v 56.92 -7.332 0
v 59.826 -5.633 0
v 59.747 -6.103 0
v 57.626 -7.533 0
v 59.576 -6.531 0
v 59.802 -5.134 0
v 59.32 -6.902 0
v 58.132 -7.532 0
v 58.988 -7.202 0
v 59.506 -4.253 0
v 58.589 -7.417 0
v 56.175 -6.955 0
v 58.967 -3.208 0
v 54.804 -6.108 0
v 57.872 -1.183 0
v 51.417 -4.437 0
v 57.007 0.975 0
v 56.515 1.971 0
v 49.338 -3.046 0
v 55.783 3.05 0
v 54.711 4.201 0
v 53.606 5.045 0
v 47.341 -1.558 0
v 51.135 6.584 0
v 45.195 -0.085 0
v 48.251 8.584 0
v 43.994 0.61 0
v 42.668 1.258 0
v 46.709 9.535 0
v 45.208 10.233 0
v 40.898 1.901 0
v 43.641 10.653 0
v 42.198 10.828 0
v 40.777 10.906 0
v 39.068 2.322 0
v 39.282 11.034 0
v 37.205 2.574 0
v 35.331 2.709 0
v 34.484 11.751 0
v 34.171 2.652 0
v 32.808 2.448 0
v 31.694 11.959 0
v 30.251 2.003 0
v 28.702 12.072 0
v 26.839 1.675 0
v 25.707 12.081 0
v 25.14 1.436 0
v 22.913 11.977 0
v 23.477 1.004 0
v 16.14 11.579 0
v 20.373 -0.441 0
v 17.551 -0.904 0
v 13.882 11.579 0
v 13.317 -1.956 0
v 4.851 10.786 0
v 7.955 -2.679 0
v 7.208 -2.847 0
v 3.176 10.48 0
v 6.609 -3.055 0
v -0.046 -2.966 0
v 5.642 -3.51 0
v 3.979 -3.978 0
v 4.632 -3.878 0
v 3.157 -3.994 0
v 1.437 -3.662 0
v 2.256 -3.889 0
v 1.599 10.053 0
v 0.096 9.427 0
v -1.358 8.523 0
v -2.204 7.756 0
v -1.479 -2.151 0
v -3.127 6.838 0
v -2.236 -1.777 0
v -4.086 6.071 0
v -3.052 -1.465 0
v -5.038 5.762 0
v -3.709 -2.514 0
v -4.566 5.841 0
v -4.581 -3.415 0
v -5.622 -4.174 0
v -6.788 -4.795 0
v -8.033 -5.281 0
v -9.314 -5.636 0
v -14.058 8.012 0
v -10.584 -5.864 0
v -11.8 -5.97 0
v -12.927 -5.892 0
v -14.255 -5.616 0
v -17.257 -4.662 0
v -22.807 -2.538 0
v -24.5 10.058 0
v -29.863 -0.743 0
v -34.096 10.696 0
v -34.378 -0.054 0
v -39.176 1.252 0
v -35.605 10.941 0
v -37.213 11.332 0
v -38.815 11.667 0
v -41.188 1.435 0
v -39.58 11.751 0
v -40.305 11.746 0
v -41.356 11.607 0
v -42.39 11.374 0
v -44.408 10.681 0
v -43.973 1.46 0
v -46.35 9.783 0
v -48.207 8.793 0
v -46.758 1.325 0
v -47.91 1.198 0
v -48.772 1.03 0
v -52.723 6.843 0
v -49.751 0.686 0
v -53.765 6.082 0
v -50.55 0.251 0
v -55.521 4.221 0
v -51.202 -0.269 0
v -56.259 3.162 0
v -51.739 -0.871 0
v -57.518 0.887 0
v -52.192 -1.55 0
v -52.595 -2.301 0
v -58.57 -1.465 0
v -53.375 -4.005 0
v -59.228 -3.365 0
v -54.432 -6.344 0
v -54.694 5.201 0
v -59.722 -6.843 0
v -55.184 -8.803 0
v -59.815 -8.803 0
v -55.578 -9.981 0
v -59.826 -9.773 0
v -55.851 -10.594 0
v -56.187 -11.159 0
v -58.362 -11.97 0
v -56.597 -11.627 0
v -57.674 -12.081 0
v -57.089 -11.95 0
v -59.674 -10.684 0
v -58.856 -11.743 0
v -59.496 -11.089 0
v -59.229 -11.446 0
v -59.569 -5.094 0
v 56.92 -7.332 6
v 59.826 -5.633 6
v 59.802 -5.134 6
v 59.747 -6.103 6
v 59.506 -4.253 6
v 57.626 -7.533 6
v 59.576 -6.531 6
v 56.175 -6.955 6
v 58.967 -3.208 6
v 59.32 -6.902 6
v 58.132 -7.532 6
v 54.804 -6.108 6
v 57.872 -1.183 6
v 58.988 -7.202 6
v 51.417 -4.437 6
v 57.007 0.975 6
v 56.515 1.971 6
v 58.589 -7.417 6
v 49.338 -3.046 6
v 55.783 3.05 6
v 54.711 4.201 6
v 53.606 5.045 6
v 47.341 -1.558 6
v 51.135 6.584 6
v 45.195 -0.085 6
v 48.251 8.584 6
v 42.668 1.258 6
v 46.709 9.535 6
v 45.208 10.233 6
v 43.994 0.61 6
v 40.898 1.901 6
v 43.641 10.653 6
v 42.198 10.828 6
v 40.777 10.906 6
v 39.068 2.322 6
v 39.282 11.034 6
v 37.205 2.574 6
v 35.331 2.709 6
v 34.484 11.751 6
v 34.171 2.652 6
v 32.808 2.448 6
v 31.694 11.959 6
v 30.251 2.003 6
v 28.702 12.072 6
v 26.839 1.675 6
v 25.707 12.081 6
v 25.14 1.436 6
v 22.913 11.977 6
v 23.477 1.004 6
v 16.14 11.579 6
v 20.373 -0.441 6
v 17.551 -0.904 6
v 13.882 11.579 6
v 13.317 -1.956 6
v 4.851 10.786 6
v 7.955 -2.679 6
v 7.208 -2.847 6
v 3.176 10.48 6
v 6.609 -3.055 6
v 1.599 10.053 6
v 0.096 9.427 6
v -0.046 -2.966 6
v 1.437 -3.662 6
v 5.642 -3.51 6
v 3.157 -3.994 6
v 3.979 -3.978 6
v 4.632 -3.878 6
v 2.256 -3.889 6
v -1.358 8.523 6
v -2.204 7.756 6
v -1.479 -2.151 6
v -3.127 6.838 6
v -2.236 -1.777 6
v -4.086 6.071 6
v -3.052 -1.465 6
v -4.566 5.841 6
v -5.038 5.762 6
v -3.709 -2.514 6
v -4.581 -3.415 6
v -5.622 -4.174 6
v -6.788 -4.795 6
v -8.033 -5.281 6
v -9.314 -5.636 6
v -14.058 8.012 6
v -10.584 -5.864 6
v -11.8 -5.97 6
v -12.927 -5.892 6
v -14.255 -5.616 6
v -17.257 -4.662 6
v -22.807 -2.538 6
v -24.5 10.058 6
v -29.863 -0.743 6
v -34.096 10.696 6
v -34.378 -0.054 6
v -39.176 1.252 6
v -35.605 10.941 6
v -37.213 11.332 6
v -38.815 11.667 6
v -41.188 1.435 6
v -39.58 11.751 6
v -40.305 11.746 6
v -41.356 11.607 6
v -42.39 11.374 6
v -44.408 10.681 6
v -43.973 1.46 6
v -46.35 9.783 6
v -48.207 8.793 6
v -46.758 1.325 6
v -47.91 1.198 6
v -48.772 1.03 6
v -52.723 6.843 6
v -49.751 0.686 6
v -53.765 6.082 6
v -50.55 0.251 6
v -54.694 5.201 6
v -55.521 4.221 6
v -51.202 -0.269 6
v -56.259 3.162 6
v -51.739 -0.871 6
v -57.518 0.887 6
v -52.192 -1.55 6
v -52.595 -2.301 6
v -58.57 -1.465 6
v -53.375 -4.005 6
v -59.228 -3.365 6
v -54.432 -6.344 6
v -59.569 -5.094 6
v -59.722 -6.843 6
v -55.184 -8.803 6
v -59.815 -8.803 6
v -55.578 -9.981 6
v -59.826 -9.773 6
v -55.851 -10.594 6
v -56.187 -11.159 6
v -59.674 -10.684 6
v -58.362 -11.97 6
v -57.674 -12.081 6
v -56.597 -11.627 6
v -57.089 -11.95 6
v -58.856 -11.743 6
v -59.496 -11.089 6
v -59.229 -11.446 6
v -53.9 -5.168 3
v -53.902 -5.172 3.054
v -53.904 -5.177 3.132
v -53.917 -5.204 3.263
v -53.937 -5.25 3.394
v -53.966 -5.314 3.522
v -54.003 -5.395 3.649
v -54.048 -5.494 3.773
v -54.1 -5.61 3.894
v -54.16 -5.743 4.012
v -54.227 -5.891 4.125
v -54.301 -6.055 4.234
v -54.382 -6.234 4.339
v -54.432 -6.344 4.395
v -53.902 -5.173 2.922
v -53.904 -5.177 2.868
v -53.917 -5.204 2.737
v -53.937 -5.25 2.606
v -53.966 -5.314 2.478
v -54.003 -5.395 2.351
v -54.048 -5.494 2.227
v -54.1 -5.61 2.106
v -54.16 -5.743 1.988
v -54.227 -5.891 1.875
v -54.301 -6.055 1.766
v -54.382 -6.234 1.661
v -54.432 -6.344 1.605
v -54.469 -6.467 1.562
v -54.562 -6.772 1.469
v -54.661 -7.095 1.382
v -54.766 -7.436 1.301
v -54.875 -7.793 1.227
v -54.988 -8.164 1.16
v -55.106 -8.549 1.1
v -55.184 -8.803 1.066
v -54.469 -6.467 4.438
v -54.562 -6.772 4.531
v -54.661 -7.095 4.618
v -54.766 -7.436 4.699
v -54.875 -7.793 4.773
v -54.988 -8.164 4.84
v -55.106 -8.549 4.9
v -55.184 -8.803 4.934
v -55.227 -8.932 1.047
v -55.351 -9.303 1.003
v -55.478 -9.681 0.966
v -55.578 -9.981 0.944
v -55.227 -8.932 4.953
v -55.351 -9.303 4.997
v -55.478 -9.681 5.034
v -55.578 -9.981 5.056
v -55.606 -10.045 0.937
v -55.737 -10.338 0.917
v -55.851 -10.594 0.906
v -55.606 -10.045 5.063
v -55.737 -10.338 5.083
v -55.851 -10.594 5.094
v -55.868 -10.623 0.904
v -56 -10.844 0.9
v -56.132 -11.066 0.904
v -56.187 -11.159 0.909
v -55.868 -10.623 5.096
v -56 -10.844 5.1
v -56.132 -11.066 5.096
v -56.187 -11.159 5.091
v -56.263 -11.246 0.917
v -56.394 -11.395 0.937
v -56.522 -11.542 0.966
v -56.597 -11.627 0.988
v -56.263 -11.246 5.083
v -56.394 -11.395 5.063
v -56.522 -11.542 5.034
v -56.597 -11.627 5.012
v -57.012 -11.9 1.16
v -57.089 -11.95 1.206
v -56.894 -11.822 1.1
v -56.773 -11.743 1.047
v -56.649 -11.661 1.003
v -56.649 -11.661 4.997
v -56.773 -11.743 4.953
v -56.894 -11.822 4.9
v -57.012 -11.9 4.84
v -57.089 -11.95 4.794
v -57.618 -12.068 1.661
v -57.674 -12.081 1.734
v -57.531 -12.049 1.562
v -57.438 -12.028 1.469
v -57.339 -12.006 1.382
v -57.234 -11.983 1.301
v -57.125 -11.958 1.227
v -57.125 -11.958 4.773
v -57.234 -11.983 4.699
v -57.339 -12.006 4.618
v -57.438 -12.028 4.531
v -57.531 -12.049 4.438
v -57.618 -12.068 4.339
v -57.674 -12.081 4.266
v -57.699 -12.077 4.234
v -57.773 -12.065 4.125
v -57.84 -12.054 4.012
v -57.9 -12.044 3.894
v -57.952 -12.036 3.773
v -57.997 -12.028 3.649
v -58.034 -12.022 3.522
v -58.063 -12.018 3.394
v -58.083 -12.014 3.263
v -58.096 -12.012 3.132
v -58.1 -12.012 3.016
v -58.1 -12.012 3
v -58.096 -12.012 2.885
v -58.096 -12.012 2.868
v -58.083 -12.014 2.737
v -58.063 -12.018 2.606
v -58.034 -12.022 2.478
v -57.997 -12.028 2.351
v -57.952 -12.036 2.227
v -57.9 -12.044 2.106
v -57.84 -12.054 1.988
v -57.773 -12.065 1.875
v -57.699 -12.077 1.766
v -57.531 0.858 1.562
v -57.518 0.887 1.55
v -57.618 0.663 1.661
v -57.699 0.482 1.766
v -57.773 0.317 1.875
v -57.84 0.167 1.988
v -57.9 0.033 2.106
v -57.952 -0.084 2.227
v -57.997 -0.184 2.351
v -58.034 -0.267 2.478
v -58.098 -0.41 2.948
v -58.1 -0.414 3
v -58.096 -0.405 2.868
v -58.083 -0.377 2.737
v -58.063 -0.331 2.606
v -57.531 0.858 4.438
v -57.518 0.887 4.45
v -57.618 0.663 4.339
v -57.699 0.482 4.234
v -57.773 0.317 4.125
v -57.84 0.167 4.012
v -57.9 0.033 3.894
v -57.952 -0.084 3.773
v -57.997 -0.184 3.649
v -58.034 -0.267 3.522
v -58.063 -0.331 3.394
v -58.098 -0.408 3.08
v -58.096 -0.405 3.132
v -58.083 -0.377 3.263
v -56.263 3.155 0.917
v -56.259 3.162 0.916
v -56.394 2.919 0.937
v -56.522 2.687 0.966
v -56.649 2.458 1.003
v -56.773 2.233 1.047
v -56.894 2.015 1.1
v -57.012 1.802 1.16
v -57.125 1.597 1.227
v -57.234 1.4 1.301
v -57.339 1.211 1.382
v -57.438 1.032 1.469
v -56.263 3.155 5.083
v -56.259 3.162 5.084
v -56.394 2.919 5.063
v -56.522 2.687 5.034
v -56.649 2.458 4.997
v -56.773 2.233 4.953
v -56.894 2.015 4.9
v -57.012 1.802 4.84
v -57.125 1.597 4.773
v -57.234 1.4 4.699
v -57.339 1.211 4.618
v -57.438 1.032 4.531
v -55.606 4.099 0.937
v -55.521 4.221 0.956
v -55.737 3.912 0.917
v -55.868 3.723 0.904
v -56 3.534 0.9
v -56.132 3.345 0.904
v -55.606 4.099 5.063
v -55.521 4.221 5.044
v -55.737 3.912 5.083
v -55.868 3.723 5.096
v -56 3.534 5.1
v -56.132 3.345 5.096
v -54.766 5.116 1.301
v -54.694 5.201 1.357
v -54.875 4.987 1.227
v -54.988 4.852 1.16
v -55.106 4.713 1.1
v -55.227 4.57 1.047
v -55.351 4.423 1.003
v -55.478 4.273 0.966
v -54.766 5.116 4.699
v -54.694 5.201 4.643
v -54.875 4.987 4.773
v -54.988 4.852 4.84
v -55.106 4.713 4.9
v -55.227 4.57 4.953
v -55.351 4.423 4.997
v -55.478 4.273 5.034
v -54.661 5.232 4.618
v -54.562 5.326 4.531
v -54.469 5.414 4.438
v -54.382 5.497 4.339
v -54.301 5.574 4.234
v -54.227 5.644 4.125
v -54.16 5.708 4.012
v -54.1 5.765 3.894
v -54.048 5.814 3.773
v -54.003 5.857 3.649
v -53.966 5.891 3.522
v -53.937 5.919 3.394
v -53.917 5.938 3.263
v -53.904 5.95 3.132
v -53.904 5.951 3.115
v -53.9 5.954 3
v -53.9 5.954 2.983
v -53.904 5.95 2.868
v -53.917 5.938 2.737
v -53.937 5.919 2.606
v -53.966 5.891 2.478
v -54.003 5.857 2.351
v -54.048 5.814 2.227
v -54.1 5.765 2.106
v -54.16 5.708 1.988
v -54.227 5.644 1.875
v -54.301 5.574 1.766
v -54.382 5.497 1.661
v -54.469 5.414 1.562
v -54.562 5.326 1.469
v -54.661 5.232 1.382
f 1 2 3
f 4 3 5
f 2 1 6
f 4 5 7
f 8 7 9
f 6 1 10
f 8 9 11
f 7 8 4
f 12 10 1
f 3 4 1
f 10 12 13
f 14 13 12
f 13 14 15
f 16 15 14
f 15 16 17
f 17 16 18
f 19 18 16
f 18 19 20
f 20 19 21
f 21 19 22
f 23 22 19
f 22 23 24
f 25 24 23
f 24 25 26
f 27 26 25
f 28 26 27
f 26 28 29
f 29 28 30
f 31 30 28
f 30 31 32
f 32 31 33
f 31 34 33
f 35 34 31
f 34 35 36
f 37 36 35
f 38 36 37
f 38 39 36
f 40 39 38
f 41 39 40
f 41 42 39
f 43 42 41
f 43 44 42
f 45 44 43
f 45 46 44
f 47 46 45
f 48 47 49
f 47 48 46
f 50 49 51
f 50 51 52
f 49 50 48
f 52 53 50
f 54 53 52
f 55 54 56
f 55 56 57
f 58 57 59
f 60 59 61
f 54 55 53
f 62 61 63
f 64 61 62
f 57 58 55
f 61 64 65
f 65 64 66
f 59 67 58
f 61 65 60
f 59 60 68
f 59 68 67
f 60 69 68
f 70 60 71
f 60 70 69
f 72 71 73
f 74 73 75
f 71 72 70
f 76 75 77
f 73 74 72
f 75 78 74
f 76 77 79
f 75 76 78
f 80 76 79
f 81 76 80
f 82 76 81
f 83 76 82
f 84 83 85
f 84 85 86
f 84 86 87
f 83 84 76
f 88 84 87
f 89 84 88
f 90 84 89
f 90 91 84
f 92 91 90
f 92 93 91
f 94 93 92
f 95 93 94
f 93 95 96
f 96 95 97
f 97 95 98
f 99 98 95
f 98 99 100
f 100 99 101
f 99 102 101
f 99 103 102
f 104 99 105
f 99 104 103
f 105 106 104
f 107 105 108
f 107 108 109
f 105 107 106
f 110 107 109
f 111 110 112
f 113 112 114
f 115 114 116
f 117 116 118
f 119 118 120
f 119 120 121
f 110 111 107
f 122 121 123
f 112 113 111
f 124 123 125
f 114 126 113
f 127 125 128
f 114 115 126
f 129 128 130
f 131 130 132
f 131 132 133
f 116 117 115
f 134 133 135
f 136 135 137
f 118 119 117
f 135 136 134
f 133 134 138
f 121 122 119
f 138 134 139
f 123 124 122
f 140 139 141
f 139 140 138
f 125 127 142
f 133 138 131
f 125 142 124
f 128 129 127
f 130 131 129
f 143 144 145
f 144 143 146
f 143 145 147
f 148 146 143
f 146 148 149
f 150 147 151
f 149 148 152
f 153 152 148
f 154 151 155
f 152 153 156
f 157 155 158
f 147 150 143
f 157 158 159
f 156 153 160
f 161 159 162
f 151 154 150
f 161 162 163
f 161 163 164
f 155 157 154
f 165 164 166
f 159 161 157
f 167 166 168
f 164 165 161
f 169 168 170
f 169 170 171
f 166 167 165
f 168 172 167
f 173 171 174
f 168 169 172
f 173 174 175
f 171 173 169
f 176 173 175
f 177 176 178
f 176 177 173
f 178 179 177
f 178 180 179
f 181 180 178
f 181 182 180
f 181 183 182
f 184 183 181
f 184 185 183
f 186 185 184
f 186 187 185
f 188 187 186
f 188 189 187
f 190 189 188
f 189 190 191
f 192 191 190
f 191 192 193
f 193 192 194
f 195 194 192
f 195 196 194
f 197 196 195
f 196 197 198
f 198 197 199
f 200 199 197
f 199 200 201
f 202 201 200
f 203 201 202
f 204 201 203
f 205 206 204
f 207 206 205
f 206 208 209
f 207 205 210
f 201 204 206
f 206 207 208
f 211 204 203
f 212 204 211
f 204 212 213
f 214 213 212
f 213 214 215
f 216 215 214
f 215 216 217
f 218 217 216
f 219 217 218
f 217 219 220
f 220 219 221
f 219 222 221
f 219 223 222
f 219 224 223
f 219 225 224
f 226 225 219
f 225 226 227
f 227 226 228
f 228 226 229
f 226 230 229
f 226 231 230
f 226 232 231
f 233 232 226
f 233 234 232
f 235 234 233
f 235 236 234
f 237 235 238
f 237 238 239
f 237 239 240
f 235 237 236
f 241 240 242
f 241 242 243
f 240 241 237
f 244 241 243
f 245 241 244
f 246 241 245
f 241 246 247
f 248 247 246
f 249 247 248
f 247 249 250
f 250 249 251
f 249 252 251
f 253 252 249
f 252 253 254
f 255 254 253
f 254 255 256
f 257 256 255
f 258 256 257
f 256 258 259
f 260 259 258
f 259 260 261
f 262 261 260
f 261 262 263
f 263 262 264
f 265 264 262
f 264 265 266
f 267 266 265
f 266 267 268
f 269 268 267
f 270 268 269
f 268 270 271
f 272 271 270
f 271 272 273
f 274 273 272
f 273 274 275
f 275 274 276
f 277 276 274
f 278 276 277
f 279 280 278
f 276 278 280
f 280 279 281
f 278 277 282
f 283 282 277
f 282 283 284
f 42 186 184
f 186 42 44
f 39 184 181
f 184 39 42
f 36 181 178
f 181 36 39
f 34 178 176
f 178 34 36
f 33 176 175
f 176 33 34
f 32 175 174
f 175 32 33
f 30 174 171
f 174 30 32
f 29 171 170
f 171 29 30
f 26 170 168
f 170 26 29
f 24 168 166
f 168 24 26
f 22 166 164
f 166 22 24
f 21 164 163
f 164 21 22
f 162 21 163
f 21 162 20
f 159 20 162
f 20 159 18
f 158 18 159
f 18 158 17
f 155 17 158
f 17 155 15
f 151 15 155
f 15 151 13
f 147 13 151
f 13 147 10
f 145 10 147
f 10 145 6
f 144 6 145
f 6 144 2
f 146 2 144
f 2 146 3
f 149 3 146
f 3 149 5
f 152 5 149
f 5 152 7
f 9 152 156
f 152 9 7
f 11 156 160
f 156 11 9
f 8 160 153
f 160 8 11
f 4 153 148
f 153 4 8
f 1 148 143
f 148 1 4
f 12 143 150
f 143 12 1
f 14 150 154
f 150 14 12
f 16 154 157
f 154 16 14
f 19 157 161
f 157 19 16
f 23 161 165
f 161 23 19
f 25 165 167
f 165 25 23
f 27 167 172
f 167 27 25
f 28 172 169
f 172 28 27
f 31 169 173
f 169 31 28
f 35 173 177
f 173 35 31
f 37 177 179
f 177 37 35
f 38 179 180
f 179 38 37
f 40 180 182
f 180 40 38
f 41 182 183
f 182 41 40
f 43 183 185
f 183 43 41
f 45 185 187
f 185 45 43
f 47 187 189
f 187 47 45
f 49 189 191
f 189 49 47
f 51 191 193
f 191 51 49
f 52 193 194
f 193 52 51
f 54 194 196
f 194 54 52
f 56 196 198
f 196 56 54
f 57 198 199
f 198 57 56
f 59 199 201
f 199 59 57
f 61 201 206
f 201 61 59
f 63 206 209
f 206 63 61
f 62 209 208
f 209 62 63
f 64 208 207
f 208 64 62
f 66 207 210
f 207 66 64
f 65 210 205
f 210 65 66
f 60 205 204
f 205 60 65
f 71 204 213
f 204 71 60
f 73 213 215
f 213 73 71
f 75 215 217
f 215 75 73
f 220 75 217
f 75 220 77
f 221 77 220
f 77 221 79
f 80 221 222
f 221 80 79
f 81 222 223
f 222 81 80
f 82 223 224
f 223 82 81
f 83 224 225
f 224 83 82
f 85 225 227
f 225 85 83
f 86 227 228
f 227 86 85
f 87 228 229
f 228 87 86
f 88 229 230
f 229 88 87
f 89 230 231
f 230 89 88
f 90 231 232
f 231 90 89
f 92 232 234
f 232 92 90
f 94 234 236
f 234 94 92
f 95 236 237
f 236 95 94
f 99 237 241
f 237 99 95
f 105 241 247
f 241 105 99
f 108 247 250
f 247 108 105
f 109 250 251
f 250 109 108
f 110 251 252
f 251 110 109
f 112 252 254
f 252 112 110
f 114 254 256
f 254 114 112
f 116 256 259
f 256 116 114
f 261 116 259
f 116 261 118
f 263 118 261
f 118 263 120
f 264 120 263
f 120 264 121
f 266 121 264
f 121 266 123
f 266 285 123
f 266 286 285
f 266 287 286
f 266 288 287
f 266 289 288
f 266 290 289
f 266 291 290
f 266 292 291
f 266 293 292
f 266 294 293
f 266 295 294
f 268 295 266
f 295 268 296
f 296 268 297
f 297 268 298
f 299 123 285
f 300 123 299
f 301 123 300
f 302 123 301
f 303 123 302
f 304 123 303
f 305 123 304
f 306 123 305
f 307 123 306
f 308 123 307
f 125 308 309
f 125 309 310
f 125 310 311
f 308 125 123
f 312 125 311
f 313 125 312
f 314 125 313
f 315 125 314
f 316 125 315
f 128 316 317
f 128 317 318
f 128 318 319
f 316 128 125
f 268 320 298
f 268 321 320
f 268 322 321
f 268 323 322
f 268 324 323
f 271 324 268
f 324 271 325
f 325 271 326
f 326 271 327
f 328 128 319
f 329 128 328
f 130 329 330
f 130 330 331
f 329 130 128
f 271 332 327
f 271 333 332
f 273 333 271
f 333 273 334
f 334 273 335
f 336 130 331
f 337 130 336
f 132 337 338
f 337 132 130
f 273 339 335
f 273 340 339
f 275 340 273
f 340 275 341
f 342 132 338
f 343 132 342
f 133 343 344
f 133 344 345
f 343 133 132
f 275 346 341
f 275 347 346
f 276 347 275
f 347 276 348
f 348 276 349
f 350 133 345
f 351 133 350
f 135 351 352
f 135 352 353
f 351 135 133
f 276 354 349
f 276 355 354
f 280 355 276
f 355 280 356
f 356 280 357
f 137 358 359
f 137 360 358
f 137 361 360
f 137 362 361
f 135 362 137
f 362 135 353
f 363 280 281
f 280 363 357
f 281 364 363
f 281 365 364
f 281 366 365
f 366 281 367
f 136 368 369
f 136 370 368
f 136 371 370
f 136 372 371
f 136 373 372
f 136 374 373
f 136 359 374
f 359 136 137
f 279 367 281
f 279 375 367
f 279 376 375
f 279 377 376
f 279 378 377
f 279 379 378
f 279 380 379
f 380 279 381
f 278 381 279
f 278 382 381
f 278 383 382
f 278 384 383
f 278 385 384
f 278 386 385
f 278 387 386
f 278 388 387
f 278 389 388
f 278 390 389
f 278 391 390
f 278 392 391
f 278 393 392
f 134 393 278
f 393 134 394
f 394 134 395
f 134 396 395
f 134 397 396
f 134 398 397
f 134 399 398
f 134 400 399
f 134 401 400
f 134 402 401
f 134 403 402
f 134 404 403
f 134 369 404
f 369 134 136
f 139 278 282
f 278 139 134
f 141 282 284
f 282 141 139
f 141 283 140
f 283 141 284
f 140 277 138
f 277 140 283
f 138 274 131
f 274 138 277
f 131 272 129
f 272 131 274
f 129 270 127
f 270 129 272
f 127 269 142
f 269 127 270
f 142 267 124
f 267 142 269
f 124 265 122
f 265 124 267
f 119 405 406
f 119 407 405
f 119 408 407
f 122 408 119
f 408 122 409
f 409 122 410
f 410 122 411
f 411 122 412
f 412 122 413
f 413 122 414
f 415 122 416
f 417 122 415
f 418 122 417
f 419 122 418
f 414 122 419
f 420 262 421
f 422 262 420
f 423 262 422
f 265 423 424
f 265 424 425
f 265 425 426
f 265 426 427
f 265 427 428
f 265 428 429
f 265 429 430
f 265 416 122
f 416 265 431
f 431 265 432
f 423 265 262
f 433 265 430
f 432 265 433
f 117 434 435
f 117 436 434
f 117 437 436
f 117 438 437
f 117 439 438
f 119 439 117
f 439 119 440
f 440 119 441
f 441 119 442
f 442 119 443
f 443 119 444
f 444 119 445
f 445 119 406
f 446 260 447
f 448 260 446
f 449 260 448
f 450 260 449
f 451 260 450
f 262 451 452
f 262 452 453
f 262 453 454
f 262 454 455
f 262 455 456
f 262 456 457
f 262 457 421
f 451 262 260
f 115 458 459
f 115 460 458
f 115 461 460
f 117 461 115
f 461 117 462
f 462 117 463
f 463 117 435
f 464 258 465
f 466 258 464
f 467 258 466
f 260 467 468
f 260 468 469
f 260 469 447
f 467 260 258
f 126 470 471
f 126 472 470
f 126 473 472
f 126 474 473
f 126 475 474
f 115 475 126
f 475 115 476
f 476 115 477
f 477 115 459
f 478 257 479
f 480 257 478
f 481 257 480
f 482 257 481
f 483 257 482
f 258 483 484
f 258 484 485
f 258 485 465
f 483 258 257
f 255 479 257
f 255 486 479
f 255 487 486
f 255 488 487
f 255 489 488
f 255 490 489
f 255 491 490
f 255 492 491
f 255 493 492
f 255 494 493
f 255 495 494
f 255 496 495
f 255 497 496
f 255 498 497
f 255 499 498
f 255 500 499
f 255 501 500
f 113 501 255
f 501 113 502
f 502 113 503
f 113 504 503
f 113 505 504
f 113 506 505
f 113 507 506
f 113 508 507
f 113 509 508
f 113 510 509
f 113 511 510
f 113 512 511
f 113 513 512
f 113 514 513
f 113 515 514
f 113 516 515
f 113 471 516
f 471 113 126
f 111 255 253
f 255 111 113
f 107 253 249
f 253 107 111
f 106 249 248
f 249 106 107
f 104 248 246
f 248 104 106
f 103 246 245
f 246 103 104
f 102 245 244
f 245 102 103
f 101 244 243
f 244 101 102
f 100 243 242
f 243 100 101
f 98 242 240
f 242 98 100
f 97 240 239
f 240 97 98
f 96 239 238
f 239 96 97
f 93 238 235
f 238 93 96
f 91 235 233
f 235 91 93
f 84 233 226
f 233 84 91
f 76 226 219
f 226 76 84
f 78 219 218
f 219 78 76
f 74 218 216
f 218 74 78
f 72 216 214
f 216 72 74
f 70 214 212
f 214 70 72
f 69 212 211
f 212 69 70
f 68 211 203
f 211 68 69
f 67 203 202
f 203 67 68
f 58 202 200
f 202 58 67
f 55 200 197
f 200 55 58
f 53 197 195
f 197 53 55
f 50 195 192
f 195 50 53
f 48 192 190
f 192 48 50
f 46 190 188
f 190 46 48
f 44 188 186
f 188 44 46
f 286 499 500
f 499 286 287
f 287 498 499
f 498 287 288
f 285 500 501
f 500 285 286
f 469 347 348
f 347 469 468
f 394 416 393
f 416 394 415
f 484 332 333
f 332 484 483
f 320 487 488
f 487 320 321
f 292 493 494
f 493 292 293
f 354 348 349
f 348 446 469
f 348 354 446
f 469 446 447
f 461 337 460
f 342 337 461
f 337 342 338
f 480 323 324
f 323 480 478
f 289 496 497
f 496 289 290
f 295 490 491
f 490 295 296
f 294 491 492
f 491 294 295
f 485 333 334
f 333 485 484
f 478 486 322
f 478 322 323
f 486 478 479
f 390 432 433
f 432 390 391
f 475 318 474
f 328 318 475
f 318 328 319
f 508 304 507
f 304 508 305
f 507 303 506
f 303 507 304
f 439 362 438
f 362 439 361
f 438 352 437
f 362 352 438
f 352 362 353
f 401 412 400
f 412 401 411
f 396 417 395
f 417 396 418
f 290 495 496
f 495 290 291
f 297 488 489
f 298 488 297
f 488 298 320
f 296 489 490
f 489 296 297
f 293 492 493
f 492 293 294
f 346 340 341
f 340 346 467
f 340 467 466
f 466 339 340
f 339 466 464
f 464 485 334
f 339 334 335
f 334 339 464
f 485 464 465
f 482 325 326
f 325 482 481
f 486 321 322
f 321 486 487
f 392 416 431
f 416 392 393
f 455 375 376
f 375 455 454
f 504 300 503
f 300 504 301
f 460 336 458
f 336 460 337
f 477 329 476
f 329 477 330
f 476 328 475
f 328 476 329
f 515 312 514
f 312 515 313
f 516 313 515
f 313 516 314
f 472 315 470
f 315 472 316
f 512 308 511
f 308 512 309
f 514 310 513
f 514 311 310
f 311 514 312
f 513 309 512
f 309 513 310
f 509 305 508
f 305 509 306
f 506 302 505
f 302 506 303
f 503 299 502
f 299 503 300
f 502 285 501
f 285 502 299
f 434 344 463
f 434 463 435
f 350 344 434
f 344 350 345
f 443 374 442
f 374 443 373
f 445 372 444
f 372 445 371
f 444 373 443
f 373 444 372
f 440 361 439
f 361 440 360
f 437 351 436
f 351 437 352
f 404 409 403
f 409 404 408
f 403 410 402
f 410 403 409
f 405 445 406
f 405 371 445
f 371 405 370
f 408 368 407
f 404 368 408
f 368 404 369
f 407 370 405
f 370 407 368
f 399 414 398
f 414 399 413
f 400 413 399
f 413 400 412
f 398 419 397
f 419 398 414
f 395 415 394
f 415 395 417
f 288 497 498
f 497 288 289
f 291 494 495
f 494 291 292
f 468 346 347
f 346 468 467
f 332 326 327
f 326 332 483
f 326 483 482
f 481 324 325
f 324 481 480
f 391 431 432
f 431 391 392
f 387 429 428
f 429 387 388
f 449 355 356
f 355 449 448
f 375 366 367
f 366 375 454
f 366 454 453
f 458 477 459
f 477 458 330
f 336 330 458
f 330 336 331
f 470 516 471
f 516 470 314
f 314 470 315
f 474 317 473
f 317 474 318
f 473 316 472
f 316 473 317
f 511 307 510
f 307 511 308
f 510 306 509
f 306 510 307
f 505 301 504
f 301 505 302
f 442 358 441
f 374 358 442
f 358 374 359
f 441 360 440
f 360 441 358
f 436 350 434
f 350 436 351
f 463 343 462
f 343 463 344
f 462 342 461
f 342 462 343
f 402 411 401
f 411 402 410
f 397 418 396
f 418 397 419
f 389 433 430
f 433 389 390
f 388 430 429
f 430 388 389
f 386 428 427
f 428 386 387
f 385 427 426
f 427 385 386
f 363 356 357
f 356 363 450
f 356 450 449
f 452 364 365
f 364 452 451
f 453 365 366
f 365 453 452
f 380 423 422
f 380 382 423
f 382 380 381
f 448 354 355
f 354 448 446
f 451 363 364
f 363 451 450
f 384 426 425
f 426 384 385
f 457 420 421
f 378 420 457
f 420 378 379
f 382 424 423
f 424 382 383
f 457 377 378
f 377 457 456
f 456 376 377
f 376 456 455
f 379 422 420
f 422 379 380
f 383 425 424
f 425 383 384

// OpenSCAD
// file: ../18-frida-kahlo-book-lede.w1200.h630.scad
module fridaKalohBrow(h)
{
  scale([25.4/90, -25.4/90, 1]) union()
  {
    linear_extrude(height=h)
      polygon([[-41.812656,21.152012],[-45.803359,20.878887],[-50.510781,19.898887],[-61.147656,16.519512],[-80.812656,8.992012],[-105.812656,2.632012],[-121.812656,0.192012],[-138.812656,-4.437988],[-145.940625,-5.083770],[-155.808906,-5.171738],[-165.679062,-4.695332],[-169.759082,-4.243437],[-172.812656,-3.647988],[-176.281621,-2.429023],[-179.114375,-0.890020],[-181.424707,0.953438],[-183.326406,3.085762],[-184.933262,5.491367],[-186.359062,8.154668],[-189.122656,14.192012],[-192.867656,22.478262],[-195.532656,31.192012],[-196.930625,35.366699],[-197.897441,37.538770],[-199.088906,39.539512],[-200.539590,41.198066],[-202.284062,42.343574],[-204.356895,42.805176],[-206.792656,42.412012],[-208.545059,41.609570],[-209.865625,40.556230],[-210.811895,39.291719],[-211.441406,37.855762],[-211.980312,34.628418],[-211.942656,31.192012],[-211.613594,24.246699],[-211.072656,18.049512],[-209.864219,11.923574],[-207.532656,5.192012],[-203.804375,-3.141582],[-199.343906,-11.204238],[-196.728652,-14.956719],[-193.797812,-18.428770],[-190.507207,-21.549492],[-186.812656,-24.247988],[-170.812656,-31.157988],[-164.232656,-34.664082],[-157.352656,-37.846738],[-150.202656,-40.300020],[-146.535781,-41.126289],[-142.812656,-41.617988],[-140.245586,-41.636562],[-137.532969,-41.339082],[-131.857656,-40.151738],[-126.159844,-38.767520],[-120.812656,-37.897988],[-86.812656,-35.637988],[-49.812656,-28.387988],[-17.852656,-20.417988],[-16.177129,-20.695488],[-14.477812,-21.512988],[-11.081406,-24.227988],[-7.810625,-27.482988],[-4.812656,-30.197988],[0.339063,-33.401582],[5.666094,-35.621738],[11.253750,-37.135020],[17.187344,-38.217988],[49.187344,-41.027988],[57.187344,-41.027988],[81.187344,-42.437988],[91.088125,-42.805176],[101.698594,-42.772988],[112.303437,-42.373301],[122.187344,-41.637988],[139.187344,-39.097988],[144.486562,-38.642988],[149.518594,-38.367988],[154.635000,-37.747988],[160.187344,-36.257988],[165.503438,-33.784863],[170.968594,-30.415488],[181.187344,-23.327988],[189.943594,-17.874238],[193.859063,-14.886270],[197.657344,-10.807988],[200.250781,-6.983457],[201.994844,-3.454238],[205.057344,4.192012],[208.938594,11.368262],[210.849688,15.069355],[211.897344,18.192012],[211.980313,19.958750],[211.702344,21.625293],[211.094375,23.141133],[210.187344,24.455762],[209.012188,25.518672],[207.599844,26.279355],[205.981250,26.687305],[204.187344,26.692012],[201.685469,25.980293],[199.044844,24.643262],[194.187344,21.642012],[182.187344,15.722012],[174.820781,10.794199],[167.744844,5.519512],[160.140156,0.301074],[155.883477,-2.161074],[151.187344,-4.457988],[144.912813,-6.734863],[138.431094,-8.227988],[131.827500,-9.121113],[125.187344,-9.597988],[121.078281,-9.397207],[116.247344,-8.674238],[107.187344,-7.097988],[95.097344,-5.935488],[89.077656,-5.087051],[83.187344,-3.557988],[72.187344,1.562012],[62.187344,3.202012],[47.187344,6.932012],[28.187344,9.492012],[25.541035,10.086816],[23.417500,10.824824],[19.991094,12.437012],[16.412813,13.741699],[14.099434,14.095332],[11.187344,14.152012],[7.993965,13.779727],[5.093438,12.975605],[-0.161406,10.508262],[-5.241875,7.622793],[-7.924434,6.296016],[-10.812656,5.192012],[-13.142598,8.906387],[-16.231562,12.101387],[-19.920762,14.791074],[-24.051406,16.989512],[-28.464707,18.710762],[-33.001875,19.968887],[-37.504121,20.777949],[-41.812656,21.152012]]);
  }
}

fridaKalohBrow(5);
// file: ../../../shapes/open-cylinder/open-cylinder.scad
openCylinder();

module openCylinder(height = 3,
                    outerRadius = 7,
                    innerRadius = 4.5,
                    fn = 100)
{
    $fn = fn;
        
    difference()
    {
        cylinder(r=outerRadius,
                 h=height);
        
        
        translate([0, 0, -1])
        cylinder(r=innerRadius,
                 h=height+1.01);
    }
}
// main file
use <../../../shapes/open-cylinder/open-cylinder.scad>

use <../18-frida-kahlo-book-lede.w1200.h630.scad>

mask();

module mask()
{
//	union()
	difference()
	{
		fridaKalohBrow(6);

		rotate([90,0,0])		
		translate([-56,3,-9])
		
		
//		$fn = 100;
		
		cylinder(r=2.1,
                 h=24,
                 $fn = 100);
		
//		openCylinder(height = 24,
//                    outerRadius = 2.5,
//                    innerRadius = 2);
	}
}
